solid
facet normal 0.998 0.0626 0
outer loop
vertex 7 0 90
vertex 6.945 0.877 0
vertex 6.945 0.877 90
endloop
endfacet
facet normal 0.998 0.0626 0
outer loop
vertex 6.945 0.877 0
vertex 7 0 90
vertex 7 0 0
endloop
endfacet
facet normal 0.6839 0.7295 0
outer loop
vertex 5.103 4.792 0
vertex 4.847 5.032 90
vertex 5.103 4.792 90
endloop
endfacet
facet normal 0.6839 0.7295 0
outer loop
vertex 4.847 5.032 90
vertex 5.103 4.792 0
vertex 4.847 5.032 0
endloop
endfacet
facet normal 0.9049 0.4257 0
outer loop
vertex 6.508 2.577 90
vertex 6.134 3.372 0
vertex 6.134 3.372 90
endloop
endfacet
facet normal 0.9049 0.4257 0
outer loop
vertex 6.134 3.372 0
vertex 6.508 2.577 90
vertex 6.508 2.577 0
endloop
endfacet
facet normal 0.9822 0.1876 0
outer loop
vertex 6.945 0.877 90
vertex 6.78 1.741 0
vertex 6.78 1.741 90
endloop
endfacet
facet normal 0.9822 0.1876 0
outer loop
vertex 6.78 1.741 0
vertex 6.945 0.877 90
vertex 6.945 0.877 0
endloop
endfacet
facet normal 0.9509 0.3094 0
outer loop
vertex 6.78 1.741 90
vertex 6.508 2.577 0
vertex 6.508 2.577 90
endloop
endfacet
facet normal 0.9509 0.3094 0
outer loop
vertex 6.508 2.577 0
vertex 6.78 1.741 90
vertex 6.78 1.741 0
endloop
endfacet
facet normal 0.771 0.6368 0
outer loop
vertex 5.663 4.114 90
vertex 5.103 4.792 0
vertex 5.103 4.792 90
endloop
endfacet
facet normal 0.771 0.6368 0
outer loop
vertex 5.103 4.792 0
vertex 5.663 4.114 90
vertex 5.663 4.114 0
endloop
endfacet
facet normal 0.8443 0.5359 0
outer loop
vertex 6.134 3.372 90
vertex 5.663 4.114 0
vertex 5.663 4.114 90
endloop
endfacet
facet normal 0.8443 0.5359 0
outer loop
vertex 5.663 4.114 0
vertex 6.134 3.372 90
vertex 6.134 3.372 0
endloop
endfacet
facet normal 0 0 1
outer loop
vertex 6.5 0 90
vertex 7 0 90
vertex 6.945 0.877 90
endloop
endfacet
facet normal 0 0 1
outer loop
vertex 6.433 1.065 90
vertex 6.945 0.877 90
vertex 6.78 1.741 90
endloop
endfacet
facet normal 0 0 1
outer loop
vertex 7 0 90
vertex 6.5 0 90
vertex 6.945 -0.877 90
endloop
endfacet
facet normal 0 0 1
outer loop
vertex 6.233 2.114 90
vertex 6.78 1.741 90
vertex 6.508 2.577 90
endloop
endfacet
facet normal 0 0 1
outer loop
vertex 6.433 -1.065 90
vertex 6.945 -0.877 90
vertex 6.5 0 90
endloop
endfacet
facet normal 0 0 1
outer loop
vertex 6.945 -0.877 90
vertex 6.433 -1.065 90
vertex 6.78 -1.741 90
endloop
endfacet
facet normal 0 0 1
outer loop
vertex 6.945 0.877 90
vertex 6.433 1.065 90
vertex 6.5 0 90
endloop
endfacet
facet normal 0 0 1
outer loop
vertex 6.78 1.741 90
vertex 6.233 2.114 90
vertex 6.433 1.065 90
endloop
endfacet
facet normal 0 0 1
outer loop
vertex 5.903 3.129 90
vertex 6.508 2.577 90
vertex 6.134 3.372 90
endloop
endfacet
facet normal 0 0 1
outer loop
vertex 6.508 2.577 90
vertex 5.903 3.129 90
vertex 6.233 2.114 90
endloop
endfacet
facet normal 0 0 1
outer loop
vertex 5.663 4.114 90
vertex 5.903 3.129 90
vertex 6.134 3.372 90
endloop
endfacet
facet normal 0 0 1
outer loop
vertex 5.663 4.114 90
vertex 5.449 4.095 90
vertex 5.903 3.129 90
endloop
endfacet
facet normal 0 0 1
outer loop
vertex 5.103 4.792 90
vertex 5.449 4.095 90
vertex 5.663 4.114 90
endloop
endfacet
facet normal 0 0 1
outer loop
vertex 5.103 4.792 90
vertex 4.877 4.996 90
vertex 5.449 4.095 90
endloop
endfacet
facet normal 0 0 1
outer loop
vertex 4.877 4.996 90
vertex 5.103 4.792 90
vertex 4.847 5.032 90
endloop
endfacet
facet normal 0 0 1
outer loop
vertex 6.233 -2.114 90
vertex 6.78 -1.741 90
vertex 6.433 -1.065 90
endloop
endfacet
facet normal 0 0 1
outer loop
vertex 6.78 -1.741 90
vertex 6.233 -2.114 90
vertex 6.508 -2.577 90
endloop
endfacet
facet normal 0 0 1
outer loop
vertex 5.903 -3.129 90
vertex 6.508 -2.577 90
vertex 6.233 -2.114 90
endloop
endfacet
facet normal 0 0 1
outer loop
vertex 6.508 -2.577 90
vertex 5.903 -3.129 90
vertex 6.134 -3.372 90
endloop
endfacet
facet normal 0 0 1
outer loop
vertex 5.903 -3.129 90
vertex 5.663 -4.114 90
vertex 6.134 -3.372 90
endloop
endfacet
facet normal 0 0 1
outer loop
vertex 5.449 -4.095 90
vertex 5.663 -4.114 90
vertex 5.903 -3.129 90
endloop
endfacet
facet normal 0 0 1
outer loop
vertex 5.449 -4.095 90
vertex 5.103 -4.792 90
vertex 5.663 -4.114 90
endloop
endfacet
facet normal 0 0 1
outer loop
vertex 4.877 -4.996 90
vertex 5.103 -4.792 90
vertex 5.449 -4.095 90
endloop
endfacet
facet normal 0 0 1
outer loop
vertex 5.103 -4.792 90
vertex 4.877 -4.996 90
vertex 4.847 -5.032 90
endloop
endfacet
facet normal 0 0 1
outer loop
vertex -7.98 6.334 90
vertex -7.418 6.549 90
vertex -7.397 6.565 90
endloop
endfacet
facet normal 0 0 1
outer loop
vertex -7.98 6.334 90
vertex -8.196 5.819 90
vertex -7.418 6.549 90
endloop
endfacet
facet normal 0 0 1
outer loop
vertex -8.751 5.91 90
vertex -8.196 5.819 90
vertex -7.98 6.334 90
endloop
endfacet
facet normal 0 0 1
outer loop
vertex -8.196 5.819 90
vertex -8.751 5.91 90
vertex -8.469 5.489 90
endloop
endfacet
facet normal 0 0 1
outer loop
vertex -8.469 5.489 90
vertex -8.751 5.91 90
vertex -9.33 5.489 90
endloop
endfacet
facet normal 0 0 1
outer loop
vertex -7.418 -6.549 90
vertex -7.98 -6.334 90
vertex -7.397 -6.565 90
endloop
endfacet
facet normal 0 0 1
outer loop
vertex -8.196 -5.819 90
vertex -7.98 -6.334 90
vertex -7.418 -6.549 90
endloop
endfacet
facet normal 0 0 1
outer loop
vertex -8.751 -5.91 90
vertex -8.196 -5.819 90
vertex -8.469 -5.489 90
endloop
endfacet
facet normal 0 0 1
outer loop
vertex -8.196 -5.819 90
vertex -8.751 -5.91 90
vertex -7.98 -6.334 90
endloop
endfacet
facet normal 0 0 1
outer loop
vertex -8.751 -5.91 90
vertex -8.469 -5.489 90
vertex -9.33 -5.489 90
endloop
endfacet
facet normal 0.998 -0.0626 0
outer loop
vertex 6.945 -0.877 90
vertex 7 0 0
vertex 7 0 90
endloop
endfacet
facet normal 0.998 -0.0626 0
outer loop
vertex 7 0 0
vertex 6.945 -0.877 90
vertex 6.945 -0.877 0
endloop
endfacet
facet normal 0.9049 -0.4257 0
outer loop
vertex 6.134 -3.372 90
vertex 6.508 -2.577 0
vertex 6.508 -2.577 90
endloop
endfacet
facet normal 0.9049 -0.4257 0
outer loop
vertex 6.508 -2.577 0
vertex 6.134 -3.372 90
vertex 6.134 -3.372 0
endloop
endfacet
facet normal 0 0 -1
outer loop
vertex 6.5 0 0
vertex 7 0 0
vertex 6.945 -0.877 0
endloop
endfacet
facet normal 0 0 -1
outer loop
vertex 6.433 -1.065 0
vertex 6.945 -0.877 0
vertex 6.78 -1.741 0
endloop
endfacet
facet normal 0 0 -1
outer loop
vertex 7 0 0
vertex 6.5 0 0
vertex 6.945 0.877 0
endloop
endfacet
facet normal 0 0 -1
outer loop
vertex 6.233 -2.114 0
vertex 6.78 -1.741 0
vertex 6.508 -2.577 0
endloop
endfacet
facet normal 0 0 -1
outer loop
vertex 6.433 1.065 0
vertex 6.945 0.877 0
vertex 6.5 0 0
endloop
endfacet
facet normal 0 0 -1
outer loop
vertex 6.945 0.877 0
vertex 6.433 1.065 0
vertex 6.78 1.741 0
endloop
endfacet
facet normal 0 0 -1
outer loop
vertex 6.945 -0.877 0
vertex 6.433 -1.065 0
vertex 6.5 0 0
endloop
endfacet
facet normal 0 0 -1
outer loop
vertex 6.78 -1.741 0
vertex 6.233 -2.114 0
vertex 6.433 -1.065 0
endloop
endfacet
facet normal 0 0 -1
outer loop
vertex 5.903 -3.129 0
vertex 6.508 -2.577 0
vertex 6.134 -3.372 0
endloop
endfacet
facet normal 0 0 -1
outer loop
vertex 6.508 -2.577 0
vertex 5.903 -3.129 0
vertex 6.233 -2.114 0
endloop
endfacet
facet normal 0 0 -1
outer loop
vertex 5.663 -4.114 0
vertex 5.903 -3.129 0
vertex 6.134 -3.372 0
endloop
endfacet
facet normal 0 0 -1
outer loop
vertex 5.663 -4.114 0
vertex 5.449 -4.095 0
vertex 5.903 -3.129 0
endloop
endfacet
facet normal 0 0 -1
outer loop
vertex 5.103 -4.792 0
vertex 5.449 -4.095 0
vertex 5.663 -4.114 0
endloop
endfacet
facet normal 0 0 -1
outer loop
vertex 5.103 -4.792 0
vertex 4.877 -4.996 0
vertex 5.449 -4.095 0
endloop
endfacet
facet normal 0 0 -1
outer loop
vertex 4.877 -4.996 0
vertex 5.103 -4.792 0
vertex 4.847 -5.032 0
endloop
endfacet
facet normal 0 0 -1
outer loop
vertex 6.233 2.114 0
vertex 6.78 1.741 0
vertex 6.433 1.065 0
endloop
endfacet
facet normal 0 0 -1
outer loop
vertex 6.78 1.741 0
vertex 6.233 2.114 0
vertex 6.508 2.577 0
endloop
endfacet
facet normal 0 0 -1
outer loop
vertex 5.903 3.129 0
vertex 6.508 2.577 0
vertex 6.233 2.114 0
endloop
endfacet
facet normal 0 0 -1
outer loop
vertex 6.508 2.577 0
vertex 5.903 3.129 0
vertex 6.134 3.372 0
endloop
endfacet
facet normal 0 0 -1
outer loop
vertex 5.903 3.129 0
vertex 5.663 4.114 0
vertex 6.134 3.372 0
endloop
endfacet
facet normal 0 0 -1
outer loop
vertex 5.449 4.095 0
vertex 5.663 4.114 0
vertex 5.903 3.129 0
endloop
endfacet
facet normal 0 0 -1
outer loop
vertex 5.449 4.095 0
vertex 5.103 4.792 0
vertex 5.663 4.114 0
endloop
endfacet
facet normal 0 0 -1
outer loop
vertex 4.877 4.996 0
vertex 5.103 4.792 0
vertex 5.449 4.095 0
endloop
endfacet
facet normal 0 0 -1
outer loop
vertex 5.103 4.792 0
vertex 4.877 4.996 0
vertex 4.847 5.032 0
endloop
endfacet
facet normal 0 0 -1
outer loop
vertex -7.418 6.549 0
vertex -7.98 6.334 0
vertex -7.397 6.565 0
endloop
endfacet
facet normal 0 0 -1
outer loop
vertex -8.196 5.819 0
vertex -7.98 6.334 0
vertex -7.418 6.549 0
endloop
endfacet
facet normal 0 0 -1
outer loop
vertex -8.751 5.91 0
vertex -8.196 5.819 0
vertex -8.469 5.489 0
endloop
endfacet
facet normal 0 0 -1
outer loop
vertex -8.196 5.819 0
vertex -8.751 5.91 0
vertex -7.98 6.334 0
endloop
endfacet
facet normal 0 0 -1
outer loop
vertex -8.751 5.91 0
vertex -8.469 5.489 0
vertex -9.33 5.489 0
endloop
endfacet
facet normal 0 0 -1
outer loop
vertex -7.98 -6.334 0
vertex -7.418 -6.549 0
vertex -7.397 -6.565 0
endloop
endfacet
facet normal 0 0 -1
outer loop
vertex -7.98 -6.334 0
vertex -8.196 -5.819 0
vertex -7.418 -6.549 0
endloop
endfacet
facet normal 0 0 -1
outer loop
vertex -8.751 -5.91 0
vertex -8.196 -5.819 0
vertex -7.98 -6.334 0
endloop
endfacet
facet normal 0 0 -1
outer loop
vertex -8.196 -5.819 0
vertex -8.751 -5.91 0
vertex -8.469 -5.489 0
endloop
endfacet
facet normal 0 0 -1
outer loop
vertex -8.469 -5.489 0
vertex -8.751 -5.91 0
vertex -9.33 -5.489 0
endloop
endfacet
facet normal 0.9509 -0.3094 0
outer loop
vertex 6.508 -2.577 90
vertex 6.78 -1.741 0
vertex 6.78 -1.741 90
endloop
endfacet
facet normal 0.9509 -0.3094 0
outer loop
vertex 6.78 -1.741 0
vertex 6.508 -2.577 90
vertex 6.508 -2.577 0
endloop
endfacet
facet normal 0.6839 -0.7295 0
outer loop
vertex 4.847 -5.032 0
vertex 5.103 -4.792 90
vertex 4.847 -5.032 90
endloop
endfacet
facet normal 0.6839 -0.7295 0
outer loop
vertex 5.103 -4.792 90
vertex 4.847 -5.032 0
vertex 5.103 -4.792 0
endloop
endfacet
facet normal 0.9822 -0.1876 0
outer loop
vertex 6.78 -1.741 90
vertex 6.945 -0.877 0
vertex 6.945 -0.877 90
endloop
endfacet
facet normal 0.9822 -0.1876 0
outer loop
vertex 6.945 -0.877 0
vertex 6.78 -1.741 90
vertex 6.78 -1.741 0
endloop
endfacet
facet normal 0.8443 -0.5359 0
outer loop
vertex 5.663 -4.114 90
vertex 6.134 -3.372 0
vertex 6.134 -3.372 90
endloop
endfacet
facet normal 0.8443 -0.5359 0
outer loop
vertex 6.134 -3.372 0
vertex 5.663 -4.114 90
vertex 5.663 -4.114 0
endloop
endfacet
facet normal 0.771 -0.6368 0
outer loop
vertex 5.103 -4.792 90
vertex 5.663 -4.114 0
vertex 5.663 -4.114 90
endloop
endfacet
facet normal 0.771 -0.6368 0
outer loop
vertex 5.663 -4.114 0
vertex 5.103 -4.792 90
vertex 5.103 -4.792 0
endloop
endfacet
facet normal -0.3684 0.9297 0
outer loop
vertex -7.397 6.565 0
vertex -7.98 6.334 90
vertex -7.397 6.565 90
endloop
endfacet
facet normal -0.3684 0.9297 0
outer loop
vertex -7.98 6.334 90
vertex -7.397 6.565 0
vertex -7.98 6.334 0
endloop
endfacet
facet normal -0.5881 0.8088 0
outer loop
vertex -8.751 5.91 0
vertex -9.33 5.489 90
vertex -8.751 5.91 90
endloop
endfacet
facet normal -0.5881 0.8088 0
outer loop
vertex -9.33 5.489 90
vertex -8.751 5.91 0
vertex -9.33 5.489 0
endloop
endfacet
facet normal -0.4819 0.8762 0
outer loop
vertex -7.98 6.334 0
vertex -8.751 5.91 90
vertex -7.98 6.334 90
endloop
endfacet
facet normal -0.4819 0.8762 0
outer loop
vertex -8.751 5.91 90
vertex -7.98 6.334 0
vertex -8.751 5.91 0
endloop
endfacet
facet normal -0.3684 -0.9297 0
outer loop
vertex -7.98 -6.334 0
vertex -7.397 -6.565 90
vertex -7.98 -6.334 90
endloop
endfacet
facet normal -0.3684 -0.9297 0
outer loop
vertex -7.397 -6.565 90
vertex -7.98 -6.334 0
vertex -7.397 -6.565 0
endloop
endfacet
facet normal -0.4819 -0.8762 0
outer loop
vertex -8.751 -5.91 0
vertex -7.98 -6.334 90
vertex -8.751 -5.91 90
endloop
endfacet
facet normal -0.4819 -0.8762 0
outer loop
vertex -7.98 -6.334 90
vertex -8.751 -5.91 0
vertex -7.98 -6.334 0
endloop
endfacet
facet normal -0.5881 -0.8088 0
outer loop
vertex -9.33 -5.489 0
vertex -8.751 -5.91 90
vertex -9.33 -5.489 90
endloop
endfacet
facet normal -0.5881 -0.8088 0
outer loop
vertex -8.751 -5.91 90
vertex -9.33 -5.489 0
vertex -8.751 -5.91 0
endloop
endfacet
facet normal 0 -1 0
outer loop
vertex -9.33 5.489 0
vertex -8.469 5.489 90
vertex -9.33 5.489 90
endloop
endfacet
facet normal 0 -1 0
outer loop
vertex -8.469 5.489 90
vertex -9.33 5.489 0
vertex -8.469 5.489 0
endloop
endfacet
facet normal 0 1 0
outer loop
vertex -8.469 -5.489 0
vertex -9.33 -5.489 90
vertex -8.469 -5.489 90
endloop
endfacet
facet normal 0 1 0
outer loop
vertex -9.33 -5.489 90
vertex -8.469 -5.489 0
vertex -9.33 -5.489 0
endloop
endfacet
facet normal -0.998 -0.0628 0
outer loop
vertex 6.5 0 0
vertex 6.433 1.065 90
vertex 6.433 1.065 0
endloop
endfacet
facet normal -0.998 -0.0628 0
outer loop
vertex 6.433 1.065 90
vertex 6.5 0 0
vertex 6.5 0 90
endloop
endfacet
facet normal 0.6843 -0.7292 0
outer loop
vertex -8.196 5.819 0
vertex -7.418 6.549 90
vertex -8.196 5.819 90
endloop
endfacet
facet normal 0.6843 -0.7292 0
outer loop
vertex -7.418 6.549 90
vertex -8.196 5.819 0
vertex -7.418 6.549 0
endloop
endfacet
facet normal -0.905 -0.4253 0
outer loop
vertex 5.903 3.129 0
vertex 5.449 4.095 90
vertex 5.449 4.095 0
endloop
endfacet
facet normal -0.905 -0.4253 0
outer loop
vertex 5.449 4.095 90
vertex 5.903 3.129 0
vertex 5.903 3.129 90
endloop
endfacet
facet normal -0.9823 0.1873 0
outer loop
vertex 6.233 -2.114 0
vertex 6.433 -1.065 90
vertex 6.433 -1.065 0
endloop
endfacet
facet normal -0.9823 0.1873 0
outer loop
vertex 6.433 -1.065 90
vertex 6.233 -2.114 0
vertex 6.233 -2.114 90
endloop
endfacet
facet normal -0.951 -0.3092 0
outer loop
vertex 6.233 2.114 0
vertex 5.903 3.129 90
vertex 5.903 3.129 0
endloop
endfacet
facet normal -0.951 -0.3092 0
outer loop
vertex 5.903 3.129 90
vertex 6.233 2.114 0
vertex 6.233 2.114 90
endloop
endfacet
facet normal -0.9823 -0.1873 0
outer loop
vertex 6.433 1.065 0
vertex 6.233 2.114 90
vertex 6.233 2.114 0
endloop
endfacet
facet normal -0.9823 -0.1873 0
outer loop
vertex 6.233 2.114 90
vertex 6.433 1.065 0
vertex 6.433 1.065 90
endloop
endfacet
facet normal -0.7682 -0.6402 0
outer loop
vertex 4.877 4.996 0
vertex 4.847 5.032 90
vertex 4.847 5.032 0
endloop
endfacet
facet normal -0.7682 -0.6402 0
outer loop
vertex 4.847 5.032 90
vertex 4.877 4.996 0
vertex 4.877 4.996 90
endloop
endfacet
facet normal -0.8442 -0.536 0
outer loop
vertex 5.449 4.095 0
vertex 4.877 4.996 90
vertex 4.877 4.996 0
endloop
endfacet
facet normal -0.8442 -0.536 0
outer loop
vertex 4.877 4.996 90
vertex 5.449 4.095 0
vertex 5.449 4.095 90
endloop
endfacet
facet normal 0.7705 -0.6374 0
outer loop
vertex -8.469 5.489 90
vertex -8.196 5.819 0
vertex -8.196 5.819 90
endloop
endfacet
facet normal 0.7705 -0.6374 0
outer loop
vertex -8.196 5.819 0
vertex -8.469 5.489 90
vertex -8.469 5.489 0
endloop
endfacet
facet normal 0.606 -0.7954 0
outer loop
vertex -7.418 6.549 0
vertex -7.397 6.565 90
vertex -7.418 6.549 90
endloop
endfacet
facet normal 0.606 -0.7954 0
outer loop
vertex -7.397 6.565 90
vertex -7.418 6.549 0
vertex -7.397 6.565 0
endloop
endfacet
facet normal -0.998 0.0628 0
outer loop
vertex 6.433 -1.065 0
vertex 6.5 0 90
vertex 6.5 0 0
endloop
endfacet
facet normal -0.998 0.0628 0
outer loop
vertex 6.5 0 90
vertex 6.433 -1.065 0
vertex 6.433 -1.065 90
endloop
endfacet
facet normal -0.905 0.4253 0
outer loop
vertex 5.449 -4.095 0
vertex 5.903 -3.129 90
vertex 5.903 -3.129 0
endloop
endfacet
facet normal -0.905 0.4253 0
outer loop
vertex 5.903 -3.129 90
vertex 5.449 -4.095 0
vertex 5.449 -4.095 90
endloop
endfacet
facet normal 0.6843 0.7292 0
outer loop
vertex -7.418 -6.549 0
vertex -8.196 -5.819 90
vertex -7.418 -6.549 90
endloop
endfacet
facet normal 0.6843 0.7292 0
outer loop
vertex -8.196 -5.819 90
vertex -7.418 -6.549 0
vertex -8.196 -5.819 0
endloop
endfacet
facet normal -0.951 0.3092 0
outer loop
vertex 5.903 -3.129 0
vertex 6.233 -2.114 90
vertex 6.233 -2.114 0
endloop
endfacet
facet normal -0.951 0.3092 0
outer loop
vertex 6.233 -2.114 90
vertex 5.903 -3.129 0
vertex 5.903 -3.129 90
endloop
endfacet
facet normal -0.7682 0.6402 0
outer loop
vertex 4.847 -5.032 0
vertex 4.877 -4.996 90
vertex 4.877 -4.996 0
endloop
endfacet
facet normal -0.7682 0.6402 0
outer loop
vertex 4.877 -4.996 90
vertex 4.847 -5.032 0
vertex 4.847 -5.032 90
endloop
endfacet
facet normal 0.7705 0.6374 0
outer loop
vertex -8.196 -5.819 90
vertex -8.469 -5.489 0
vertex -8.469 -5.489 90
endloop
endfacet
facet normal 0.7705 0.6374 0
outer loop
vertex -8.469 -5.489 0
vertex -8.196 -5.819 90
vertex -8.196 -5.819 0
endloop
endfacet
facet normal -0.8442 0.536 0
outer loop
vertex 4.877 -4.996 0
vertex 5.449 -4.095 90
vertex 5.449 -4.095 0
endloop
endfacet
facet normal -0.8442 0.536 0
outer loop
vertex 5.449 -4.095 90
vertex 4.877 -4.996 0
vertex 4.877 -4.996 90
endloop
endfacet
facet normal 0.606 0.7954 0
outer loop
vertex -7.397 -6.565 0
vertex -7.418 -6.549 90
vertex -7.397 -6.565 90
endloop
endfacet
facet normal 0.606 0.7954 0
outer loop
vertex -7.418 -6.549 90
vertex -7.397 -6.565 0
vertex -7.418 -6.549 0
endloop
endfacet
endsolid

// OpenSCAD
$fn = 50;


difference() {
	union() {
		cylinder(h = 90, r = 7.0000000000);
		translate(v = [-5.0000000000, 0, 0]) {
			cylinder(h = 90, r = 7.0000000000);
		}
	}
	union() {
		cylinder(h = 90, r = 3.2500000000);
		cylinder(h = 90, r = 1.8000000000);
		cylinder(h = 90, r = 1.8000000000);
		cylinder(h = 90, r = 1.8000000000);
		translate(v = [-9.5000000000, 0, 0]) {
			hull() {
				translate(v = [-3.7500000000, 0.0000000000, 0]) {
					cylinder(h = 90, r = 5.5000000000);
				}
				translate(v = [3.7500000000, 0.0000000000, 0]) {
					cylinder(h = 90, r = 5.5000000000);
				}
				translate(v = [-3.7500000000, -0.0000000000, 0]) {
					cylinder(h = 90, r = 5.5000000000);
				}
				translate(v = [3.7500000000, -0.0000000000, 0]) {
					cylinder(h = 90, r = 5.5000000000);
				}
			}
		}
		translate(v = [-2.0000000000, 0, 0.0000000000]) {
			cylinder(h = 90, r = 8.5000000000);
		}
	}
}
